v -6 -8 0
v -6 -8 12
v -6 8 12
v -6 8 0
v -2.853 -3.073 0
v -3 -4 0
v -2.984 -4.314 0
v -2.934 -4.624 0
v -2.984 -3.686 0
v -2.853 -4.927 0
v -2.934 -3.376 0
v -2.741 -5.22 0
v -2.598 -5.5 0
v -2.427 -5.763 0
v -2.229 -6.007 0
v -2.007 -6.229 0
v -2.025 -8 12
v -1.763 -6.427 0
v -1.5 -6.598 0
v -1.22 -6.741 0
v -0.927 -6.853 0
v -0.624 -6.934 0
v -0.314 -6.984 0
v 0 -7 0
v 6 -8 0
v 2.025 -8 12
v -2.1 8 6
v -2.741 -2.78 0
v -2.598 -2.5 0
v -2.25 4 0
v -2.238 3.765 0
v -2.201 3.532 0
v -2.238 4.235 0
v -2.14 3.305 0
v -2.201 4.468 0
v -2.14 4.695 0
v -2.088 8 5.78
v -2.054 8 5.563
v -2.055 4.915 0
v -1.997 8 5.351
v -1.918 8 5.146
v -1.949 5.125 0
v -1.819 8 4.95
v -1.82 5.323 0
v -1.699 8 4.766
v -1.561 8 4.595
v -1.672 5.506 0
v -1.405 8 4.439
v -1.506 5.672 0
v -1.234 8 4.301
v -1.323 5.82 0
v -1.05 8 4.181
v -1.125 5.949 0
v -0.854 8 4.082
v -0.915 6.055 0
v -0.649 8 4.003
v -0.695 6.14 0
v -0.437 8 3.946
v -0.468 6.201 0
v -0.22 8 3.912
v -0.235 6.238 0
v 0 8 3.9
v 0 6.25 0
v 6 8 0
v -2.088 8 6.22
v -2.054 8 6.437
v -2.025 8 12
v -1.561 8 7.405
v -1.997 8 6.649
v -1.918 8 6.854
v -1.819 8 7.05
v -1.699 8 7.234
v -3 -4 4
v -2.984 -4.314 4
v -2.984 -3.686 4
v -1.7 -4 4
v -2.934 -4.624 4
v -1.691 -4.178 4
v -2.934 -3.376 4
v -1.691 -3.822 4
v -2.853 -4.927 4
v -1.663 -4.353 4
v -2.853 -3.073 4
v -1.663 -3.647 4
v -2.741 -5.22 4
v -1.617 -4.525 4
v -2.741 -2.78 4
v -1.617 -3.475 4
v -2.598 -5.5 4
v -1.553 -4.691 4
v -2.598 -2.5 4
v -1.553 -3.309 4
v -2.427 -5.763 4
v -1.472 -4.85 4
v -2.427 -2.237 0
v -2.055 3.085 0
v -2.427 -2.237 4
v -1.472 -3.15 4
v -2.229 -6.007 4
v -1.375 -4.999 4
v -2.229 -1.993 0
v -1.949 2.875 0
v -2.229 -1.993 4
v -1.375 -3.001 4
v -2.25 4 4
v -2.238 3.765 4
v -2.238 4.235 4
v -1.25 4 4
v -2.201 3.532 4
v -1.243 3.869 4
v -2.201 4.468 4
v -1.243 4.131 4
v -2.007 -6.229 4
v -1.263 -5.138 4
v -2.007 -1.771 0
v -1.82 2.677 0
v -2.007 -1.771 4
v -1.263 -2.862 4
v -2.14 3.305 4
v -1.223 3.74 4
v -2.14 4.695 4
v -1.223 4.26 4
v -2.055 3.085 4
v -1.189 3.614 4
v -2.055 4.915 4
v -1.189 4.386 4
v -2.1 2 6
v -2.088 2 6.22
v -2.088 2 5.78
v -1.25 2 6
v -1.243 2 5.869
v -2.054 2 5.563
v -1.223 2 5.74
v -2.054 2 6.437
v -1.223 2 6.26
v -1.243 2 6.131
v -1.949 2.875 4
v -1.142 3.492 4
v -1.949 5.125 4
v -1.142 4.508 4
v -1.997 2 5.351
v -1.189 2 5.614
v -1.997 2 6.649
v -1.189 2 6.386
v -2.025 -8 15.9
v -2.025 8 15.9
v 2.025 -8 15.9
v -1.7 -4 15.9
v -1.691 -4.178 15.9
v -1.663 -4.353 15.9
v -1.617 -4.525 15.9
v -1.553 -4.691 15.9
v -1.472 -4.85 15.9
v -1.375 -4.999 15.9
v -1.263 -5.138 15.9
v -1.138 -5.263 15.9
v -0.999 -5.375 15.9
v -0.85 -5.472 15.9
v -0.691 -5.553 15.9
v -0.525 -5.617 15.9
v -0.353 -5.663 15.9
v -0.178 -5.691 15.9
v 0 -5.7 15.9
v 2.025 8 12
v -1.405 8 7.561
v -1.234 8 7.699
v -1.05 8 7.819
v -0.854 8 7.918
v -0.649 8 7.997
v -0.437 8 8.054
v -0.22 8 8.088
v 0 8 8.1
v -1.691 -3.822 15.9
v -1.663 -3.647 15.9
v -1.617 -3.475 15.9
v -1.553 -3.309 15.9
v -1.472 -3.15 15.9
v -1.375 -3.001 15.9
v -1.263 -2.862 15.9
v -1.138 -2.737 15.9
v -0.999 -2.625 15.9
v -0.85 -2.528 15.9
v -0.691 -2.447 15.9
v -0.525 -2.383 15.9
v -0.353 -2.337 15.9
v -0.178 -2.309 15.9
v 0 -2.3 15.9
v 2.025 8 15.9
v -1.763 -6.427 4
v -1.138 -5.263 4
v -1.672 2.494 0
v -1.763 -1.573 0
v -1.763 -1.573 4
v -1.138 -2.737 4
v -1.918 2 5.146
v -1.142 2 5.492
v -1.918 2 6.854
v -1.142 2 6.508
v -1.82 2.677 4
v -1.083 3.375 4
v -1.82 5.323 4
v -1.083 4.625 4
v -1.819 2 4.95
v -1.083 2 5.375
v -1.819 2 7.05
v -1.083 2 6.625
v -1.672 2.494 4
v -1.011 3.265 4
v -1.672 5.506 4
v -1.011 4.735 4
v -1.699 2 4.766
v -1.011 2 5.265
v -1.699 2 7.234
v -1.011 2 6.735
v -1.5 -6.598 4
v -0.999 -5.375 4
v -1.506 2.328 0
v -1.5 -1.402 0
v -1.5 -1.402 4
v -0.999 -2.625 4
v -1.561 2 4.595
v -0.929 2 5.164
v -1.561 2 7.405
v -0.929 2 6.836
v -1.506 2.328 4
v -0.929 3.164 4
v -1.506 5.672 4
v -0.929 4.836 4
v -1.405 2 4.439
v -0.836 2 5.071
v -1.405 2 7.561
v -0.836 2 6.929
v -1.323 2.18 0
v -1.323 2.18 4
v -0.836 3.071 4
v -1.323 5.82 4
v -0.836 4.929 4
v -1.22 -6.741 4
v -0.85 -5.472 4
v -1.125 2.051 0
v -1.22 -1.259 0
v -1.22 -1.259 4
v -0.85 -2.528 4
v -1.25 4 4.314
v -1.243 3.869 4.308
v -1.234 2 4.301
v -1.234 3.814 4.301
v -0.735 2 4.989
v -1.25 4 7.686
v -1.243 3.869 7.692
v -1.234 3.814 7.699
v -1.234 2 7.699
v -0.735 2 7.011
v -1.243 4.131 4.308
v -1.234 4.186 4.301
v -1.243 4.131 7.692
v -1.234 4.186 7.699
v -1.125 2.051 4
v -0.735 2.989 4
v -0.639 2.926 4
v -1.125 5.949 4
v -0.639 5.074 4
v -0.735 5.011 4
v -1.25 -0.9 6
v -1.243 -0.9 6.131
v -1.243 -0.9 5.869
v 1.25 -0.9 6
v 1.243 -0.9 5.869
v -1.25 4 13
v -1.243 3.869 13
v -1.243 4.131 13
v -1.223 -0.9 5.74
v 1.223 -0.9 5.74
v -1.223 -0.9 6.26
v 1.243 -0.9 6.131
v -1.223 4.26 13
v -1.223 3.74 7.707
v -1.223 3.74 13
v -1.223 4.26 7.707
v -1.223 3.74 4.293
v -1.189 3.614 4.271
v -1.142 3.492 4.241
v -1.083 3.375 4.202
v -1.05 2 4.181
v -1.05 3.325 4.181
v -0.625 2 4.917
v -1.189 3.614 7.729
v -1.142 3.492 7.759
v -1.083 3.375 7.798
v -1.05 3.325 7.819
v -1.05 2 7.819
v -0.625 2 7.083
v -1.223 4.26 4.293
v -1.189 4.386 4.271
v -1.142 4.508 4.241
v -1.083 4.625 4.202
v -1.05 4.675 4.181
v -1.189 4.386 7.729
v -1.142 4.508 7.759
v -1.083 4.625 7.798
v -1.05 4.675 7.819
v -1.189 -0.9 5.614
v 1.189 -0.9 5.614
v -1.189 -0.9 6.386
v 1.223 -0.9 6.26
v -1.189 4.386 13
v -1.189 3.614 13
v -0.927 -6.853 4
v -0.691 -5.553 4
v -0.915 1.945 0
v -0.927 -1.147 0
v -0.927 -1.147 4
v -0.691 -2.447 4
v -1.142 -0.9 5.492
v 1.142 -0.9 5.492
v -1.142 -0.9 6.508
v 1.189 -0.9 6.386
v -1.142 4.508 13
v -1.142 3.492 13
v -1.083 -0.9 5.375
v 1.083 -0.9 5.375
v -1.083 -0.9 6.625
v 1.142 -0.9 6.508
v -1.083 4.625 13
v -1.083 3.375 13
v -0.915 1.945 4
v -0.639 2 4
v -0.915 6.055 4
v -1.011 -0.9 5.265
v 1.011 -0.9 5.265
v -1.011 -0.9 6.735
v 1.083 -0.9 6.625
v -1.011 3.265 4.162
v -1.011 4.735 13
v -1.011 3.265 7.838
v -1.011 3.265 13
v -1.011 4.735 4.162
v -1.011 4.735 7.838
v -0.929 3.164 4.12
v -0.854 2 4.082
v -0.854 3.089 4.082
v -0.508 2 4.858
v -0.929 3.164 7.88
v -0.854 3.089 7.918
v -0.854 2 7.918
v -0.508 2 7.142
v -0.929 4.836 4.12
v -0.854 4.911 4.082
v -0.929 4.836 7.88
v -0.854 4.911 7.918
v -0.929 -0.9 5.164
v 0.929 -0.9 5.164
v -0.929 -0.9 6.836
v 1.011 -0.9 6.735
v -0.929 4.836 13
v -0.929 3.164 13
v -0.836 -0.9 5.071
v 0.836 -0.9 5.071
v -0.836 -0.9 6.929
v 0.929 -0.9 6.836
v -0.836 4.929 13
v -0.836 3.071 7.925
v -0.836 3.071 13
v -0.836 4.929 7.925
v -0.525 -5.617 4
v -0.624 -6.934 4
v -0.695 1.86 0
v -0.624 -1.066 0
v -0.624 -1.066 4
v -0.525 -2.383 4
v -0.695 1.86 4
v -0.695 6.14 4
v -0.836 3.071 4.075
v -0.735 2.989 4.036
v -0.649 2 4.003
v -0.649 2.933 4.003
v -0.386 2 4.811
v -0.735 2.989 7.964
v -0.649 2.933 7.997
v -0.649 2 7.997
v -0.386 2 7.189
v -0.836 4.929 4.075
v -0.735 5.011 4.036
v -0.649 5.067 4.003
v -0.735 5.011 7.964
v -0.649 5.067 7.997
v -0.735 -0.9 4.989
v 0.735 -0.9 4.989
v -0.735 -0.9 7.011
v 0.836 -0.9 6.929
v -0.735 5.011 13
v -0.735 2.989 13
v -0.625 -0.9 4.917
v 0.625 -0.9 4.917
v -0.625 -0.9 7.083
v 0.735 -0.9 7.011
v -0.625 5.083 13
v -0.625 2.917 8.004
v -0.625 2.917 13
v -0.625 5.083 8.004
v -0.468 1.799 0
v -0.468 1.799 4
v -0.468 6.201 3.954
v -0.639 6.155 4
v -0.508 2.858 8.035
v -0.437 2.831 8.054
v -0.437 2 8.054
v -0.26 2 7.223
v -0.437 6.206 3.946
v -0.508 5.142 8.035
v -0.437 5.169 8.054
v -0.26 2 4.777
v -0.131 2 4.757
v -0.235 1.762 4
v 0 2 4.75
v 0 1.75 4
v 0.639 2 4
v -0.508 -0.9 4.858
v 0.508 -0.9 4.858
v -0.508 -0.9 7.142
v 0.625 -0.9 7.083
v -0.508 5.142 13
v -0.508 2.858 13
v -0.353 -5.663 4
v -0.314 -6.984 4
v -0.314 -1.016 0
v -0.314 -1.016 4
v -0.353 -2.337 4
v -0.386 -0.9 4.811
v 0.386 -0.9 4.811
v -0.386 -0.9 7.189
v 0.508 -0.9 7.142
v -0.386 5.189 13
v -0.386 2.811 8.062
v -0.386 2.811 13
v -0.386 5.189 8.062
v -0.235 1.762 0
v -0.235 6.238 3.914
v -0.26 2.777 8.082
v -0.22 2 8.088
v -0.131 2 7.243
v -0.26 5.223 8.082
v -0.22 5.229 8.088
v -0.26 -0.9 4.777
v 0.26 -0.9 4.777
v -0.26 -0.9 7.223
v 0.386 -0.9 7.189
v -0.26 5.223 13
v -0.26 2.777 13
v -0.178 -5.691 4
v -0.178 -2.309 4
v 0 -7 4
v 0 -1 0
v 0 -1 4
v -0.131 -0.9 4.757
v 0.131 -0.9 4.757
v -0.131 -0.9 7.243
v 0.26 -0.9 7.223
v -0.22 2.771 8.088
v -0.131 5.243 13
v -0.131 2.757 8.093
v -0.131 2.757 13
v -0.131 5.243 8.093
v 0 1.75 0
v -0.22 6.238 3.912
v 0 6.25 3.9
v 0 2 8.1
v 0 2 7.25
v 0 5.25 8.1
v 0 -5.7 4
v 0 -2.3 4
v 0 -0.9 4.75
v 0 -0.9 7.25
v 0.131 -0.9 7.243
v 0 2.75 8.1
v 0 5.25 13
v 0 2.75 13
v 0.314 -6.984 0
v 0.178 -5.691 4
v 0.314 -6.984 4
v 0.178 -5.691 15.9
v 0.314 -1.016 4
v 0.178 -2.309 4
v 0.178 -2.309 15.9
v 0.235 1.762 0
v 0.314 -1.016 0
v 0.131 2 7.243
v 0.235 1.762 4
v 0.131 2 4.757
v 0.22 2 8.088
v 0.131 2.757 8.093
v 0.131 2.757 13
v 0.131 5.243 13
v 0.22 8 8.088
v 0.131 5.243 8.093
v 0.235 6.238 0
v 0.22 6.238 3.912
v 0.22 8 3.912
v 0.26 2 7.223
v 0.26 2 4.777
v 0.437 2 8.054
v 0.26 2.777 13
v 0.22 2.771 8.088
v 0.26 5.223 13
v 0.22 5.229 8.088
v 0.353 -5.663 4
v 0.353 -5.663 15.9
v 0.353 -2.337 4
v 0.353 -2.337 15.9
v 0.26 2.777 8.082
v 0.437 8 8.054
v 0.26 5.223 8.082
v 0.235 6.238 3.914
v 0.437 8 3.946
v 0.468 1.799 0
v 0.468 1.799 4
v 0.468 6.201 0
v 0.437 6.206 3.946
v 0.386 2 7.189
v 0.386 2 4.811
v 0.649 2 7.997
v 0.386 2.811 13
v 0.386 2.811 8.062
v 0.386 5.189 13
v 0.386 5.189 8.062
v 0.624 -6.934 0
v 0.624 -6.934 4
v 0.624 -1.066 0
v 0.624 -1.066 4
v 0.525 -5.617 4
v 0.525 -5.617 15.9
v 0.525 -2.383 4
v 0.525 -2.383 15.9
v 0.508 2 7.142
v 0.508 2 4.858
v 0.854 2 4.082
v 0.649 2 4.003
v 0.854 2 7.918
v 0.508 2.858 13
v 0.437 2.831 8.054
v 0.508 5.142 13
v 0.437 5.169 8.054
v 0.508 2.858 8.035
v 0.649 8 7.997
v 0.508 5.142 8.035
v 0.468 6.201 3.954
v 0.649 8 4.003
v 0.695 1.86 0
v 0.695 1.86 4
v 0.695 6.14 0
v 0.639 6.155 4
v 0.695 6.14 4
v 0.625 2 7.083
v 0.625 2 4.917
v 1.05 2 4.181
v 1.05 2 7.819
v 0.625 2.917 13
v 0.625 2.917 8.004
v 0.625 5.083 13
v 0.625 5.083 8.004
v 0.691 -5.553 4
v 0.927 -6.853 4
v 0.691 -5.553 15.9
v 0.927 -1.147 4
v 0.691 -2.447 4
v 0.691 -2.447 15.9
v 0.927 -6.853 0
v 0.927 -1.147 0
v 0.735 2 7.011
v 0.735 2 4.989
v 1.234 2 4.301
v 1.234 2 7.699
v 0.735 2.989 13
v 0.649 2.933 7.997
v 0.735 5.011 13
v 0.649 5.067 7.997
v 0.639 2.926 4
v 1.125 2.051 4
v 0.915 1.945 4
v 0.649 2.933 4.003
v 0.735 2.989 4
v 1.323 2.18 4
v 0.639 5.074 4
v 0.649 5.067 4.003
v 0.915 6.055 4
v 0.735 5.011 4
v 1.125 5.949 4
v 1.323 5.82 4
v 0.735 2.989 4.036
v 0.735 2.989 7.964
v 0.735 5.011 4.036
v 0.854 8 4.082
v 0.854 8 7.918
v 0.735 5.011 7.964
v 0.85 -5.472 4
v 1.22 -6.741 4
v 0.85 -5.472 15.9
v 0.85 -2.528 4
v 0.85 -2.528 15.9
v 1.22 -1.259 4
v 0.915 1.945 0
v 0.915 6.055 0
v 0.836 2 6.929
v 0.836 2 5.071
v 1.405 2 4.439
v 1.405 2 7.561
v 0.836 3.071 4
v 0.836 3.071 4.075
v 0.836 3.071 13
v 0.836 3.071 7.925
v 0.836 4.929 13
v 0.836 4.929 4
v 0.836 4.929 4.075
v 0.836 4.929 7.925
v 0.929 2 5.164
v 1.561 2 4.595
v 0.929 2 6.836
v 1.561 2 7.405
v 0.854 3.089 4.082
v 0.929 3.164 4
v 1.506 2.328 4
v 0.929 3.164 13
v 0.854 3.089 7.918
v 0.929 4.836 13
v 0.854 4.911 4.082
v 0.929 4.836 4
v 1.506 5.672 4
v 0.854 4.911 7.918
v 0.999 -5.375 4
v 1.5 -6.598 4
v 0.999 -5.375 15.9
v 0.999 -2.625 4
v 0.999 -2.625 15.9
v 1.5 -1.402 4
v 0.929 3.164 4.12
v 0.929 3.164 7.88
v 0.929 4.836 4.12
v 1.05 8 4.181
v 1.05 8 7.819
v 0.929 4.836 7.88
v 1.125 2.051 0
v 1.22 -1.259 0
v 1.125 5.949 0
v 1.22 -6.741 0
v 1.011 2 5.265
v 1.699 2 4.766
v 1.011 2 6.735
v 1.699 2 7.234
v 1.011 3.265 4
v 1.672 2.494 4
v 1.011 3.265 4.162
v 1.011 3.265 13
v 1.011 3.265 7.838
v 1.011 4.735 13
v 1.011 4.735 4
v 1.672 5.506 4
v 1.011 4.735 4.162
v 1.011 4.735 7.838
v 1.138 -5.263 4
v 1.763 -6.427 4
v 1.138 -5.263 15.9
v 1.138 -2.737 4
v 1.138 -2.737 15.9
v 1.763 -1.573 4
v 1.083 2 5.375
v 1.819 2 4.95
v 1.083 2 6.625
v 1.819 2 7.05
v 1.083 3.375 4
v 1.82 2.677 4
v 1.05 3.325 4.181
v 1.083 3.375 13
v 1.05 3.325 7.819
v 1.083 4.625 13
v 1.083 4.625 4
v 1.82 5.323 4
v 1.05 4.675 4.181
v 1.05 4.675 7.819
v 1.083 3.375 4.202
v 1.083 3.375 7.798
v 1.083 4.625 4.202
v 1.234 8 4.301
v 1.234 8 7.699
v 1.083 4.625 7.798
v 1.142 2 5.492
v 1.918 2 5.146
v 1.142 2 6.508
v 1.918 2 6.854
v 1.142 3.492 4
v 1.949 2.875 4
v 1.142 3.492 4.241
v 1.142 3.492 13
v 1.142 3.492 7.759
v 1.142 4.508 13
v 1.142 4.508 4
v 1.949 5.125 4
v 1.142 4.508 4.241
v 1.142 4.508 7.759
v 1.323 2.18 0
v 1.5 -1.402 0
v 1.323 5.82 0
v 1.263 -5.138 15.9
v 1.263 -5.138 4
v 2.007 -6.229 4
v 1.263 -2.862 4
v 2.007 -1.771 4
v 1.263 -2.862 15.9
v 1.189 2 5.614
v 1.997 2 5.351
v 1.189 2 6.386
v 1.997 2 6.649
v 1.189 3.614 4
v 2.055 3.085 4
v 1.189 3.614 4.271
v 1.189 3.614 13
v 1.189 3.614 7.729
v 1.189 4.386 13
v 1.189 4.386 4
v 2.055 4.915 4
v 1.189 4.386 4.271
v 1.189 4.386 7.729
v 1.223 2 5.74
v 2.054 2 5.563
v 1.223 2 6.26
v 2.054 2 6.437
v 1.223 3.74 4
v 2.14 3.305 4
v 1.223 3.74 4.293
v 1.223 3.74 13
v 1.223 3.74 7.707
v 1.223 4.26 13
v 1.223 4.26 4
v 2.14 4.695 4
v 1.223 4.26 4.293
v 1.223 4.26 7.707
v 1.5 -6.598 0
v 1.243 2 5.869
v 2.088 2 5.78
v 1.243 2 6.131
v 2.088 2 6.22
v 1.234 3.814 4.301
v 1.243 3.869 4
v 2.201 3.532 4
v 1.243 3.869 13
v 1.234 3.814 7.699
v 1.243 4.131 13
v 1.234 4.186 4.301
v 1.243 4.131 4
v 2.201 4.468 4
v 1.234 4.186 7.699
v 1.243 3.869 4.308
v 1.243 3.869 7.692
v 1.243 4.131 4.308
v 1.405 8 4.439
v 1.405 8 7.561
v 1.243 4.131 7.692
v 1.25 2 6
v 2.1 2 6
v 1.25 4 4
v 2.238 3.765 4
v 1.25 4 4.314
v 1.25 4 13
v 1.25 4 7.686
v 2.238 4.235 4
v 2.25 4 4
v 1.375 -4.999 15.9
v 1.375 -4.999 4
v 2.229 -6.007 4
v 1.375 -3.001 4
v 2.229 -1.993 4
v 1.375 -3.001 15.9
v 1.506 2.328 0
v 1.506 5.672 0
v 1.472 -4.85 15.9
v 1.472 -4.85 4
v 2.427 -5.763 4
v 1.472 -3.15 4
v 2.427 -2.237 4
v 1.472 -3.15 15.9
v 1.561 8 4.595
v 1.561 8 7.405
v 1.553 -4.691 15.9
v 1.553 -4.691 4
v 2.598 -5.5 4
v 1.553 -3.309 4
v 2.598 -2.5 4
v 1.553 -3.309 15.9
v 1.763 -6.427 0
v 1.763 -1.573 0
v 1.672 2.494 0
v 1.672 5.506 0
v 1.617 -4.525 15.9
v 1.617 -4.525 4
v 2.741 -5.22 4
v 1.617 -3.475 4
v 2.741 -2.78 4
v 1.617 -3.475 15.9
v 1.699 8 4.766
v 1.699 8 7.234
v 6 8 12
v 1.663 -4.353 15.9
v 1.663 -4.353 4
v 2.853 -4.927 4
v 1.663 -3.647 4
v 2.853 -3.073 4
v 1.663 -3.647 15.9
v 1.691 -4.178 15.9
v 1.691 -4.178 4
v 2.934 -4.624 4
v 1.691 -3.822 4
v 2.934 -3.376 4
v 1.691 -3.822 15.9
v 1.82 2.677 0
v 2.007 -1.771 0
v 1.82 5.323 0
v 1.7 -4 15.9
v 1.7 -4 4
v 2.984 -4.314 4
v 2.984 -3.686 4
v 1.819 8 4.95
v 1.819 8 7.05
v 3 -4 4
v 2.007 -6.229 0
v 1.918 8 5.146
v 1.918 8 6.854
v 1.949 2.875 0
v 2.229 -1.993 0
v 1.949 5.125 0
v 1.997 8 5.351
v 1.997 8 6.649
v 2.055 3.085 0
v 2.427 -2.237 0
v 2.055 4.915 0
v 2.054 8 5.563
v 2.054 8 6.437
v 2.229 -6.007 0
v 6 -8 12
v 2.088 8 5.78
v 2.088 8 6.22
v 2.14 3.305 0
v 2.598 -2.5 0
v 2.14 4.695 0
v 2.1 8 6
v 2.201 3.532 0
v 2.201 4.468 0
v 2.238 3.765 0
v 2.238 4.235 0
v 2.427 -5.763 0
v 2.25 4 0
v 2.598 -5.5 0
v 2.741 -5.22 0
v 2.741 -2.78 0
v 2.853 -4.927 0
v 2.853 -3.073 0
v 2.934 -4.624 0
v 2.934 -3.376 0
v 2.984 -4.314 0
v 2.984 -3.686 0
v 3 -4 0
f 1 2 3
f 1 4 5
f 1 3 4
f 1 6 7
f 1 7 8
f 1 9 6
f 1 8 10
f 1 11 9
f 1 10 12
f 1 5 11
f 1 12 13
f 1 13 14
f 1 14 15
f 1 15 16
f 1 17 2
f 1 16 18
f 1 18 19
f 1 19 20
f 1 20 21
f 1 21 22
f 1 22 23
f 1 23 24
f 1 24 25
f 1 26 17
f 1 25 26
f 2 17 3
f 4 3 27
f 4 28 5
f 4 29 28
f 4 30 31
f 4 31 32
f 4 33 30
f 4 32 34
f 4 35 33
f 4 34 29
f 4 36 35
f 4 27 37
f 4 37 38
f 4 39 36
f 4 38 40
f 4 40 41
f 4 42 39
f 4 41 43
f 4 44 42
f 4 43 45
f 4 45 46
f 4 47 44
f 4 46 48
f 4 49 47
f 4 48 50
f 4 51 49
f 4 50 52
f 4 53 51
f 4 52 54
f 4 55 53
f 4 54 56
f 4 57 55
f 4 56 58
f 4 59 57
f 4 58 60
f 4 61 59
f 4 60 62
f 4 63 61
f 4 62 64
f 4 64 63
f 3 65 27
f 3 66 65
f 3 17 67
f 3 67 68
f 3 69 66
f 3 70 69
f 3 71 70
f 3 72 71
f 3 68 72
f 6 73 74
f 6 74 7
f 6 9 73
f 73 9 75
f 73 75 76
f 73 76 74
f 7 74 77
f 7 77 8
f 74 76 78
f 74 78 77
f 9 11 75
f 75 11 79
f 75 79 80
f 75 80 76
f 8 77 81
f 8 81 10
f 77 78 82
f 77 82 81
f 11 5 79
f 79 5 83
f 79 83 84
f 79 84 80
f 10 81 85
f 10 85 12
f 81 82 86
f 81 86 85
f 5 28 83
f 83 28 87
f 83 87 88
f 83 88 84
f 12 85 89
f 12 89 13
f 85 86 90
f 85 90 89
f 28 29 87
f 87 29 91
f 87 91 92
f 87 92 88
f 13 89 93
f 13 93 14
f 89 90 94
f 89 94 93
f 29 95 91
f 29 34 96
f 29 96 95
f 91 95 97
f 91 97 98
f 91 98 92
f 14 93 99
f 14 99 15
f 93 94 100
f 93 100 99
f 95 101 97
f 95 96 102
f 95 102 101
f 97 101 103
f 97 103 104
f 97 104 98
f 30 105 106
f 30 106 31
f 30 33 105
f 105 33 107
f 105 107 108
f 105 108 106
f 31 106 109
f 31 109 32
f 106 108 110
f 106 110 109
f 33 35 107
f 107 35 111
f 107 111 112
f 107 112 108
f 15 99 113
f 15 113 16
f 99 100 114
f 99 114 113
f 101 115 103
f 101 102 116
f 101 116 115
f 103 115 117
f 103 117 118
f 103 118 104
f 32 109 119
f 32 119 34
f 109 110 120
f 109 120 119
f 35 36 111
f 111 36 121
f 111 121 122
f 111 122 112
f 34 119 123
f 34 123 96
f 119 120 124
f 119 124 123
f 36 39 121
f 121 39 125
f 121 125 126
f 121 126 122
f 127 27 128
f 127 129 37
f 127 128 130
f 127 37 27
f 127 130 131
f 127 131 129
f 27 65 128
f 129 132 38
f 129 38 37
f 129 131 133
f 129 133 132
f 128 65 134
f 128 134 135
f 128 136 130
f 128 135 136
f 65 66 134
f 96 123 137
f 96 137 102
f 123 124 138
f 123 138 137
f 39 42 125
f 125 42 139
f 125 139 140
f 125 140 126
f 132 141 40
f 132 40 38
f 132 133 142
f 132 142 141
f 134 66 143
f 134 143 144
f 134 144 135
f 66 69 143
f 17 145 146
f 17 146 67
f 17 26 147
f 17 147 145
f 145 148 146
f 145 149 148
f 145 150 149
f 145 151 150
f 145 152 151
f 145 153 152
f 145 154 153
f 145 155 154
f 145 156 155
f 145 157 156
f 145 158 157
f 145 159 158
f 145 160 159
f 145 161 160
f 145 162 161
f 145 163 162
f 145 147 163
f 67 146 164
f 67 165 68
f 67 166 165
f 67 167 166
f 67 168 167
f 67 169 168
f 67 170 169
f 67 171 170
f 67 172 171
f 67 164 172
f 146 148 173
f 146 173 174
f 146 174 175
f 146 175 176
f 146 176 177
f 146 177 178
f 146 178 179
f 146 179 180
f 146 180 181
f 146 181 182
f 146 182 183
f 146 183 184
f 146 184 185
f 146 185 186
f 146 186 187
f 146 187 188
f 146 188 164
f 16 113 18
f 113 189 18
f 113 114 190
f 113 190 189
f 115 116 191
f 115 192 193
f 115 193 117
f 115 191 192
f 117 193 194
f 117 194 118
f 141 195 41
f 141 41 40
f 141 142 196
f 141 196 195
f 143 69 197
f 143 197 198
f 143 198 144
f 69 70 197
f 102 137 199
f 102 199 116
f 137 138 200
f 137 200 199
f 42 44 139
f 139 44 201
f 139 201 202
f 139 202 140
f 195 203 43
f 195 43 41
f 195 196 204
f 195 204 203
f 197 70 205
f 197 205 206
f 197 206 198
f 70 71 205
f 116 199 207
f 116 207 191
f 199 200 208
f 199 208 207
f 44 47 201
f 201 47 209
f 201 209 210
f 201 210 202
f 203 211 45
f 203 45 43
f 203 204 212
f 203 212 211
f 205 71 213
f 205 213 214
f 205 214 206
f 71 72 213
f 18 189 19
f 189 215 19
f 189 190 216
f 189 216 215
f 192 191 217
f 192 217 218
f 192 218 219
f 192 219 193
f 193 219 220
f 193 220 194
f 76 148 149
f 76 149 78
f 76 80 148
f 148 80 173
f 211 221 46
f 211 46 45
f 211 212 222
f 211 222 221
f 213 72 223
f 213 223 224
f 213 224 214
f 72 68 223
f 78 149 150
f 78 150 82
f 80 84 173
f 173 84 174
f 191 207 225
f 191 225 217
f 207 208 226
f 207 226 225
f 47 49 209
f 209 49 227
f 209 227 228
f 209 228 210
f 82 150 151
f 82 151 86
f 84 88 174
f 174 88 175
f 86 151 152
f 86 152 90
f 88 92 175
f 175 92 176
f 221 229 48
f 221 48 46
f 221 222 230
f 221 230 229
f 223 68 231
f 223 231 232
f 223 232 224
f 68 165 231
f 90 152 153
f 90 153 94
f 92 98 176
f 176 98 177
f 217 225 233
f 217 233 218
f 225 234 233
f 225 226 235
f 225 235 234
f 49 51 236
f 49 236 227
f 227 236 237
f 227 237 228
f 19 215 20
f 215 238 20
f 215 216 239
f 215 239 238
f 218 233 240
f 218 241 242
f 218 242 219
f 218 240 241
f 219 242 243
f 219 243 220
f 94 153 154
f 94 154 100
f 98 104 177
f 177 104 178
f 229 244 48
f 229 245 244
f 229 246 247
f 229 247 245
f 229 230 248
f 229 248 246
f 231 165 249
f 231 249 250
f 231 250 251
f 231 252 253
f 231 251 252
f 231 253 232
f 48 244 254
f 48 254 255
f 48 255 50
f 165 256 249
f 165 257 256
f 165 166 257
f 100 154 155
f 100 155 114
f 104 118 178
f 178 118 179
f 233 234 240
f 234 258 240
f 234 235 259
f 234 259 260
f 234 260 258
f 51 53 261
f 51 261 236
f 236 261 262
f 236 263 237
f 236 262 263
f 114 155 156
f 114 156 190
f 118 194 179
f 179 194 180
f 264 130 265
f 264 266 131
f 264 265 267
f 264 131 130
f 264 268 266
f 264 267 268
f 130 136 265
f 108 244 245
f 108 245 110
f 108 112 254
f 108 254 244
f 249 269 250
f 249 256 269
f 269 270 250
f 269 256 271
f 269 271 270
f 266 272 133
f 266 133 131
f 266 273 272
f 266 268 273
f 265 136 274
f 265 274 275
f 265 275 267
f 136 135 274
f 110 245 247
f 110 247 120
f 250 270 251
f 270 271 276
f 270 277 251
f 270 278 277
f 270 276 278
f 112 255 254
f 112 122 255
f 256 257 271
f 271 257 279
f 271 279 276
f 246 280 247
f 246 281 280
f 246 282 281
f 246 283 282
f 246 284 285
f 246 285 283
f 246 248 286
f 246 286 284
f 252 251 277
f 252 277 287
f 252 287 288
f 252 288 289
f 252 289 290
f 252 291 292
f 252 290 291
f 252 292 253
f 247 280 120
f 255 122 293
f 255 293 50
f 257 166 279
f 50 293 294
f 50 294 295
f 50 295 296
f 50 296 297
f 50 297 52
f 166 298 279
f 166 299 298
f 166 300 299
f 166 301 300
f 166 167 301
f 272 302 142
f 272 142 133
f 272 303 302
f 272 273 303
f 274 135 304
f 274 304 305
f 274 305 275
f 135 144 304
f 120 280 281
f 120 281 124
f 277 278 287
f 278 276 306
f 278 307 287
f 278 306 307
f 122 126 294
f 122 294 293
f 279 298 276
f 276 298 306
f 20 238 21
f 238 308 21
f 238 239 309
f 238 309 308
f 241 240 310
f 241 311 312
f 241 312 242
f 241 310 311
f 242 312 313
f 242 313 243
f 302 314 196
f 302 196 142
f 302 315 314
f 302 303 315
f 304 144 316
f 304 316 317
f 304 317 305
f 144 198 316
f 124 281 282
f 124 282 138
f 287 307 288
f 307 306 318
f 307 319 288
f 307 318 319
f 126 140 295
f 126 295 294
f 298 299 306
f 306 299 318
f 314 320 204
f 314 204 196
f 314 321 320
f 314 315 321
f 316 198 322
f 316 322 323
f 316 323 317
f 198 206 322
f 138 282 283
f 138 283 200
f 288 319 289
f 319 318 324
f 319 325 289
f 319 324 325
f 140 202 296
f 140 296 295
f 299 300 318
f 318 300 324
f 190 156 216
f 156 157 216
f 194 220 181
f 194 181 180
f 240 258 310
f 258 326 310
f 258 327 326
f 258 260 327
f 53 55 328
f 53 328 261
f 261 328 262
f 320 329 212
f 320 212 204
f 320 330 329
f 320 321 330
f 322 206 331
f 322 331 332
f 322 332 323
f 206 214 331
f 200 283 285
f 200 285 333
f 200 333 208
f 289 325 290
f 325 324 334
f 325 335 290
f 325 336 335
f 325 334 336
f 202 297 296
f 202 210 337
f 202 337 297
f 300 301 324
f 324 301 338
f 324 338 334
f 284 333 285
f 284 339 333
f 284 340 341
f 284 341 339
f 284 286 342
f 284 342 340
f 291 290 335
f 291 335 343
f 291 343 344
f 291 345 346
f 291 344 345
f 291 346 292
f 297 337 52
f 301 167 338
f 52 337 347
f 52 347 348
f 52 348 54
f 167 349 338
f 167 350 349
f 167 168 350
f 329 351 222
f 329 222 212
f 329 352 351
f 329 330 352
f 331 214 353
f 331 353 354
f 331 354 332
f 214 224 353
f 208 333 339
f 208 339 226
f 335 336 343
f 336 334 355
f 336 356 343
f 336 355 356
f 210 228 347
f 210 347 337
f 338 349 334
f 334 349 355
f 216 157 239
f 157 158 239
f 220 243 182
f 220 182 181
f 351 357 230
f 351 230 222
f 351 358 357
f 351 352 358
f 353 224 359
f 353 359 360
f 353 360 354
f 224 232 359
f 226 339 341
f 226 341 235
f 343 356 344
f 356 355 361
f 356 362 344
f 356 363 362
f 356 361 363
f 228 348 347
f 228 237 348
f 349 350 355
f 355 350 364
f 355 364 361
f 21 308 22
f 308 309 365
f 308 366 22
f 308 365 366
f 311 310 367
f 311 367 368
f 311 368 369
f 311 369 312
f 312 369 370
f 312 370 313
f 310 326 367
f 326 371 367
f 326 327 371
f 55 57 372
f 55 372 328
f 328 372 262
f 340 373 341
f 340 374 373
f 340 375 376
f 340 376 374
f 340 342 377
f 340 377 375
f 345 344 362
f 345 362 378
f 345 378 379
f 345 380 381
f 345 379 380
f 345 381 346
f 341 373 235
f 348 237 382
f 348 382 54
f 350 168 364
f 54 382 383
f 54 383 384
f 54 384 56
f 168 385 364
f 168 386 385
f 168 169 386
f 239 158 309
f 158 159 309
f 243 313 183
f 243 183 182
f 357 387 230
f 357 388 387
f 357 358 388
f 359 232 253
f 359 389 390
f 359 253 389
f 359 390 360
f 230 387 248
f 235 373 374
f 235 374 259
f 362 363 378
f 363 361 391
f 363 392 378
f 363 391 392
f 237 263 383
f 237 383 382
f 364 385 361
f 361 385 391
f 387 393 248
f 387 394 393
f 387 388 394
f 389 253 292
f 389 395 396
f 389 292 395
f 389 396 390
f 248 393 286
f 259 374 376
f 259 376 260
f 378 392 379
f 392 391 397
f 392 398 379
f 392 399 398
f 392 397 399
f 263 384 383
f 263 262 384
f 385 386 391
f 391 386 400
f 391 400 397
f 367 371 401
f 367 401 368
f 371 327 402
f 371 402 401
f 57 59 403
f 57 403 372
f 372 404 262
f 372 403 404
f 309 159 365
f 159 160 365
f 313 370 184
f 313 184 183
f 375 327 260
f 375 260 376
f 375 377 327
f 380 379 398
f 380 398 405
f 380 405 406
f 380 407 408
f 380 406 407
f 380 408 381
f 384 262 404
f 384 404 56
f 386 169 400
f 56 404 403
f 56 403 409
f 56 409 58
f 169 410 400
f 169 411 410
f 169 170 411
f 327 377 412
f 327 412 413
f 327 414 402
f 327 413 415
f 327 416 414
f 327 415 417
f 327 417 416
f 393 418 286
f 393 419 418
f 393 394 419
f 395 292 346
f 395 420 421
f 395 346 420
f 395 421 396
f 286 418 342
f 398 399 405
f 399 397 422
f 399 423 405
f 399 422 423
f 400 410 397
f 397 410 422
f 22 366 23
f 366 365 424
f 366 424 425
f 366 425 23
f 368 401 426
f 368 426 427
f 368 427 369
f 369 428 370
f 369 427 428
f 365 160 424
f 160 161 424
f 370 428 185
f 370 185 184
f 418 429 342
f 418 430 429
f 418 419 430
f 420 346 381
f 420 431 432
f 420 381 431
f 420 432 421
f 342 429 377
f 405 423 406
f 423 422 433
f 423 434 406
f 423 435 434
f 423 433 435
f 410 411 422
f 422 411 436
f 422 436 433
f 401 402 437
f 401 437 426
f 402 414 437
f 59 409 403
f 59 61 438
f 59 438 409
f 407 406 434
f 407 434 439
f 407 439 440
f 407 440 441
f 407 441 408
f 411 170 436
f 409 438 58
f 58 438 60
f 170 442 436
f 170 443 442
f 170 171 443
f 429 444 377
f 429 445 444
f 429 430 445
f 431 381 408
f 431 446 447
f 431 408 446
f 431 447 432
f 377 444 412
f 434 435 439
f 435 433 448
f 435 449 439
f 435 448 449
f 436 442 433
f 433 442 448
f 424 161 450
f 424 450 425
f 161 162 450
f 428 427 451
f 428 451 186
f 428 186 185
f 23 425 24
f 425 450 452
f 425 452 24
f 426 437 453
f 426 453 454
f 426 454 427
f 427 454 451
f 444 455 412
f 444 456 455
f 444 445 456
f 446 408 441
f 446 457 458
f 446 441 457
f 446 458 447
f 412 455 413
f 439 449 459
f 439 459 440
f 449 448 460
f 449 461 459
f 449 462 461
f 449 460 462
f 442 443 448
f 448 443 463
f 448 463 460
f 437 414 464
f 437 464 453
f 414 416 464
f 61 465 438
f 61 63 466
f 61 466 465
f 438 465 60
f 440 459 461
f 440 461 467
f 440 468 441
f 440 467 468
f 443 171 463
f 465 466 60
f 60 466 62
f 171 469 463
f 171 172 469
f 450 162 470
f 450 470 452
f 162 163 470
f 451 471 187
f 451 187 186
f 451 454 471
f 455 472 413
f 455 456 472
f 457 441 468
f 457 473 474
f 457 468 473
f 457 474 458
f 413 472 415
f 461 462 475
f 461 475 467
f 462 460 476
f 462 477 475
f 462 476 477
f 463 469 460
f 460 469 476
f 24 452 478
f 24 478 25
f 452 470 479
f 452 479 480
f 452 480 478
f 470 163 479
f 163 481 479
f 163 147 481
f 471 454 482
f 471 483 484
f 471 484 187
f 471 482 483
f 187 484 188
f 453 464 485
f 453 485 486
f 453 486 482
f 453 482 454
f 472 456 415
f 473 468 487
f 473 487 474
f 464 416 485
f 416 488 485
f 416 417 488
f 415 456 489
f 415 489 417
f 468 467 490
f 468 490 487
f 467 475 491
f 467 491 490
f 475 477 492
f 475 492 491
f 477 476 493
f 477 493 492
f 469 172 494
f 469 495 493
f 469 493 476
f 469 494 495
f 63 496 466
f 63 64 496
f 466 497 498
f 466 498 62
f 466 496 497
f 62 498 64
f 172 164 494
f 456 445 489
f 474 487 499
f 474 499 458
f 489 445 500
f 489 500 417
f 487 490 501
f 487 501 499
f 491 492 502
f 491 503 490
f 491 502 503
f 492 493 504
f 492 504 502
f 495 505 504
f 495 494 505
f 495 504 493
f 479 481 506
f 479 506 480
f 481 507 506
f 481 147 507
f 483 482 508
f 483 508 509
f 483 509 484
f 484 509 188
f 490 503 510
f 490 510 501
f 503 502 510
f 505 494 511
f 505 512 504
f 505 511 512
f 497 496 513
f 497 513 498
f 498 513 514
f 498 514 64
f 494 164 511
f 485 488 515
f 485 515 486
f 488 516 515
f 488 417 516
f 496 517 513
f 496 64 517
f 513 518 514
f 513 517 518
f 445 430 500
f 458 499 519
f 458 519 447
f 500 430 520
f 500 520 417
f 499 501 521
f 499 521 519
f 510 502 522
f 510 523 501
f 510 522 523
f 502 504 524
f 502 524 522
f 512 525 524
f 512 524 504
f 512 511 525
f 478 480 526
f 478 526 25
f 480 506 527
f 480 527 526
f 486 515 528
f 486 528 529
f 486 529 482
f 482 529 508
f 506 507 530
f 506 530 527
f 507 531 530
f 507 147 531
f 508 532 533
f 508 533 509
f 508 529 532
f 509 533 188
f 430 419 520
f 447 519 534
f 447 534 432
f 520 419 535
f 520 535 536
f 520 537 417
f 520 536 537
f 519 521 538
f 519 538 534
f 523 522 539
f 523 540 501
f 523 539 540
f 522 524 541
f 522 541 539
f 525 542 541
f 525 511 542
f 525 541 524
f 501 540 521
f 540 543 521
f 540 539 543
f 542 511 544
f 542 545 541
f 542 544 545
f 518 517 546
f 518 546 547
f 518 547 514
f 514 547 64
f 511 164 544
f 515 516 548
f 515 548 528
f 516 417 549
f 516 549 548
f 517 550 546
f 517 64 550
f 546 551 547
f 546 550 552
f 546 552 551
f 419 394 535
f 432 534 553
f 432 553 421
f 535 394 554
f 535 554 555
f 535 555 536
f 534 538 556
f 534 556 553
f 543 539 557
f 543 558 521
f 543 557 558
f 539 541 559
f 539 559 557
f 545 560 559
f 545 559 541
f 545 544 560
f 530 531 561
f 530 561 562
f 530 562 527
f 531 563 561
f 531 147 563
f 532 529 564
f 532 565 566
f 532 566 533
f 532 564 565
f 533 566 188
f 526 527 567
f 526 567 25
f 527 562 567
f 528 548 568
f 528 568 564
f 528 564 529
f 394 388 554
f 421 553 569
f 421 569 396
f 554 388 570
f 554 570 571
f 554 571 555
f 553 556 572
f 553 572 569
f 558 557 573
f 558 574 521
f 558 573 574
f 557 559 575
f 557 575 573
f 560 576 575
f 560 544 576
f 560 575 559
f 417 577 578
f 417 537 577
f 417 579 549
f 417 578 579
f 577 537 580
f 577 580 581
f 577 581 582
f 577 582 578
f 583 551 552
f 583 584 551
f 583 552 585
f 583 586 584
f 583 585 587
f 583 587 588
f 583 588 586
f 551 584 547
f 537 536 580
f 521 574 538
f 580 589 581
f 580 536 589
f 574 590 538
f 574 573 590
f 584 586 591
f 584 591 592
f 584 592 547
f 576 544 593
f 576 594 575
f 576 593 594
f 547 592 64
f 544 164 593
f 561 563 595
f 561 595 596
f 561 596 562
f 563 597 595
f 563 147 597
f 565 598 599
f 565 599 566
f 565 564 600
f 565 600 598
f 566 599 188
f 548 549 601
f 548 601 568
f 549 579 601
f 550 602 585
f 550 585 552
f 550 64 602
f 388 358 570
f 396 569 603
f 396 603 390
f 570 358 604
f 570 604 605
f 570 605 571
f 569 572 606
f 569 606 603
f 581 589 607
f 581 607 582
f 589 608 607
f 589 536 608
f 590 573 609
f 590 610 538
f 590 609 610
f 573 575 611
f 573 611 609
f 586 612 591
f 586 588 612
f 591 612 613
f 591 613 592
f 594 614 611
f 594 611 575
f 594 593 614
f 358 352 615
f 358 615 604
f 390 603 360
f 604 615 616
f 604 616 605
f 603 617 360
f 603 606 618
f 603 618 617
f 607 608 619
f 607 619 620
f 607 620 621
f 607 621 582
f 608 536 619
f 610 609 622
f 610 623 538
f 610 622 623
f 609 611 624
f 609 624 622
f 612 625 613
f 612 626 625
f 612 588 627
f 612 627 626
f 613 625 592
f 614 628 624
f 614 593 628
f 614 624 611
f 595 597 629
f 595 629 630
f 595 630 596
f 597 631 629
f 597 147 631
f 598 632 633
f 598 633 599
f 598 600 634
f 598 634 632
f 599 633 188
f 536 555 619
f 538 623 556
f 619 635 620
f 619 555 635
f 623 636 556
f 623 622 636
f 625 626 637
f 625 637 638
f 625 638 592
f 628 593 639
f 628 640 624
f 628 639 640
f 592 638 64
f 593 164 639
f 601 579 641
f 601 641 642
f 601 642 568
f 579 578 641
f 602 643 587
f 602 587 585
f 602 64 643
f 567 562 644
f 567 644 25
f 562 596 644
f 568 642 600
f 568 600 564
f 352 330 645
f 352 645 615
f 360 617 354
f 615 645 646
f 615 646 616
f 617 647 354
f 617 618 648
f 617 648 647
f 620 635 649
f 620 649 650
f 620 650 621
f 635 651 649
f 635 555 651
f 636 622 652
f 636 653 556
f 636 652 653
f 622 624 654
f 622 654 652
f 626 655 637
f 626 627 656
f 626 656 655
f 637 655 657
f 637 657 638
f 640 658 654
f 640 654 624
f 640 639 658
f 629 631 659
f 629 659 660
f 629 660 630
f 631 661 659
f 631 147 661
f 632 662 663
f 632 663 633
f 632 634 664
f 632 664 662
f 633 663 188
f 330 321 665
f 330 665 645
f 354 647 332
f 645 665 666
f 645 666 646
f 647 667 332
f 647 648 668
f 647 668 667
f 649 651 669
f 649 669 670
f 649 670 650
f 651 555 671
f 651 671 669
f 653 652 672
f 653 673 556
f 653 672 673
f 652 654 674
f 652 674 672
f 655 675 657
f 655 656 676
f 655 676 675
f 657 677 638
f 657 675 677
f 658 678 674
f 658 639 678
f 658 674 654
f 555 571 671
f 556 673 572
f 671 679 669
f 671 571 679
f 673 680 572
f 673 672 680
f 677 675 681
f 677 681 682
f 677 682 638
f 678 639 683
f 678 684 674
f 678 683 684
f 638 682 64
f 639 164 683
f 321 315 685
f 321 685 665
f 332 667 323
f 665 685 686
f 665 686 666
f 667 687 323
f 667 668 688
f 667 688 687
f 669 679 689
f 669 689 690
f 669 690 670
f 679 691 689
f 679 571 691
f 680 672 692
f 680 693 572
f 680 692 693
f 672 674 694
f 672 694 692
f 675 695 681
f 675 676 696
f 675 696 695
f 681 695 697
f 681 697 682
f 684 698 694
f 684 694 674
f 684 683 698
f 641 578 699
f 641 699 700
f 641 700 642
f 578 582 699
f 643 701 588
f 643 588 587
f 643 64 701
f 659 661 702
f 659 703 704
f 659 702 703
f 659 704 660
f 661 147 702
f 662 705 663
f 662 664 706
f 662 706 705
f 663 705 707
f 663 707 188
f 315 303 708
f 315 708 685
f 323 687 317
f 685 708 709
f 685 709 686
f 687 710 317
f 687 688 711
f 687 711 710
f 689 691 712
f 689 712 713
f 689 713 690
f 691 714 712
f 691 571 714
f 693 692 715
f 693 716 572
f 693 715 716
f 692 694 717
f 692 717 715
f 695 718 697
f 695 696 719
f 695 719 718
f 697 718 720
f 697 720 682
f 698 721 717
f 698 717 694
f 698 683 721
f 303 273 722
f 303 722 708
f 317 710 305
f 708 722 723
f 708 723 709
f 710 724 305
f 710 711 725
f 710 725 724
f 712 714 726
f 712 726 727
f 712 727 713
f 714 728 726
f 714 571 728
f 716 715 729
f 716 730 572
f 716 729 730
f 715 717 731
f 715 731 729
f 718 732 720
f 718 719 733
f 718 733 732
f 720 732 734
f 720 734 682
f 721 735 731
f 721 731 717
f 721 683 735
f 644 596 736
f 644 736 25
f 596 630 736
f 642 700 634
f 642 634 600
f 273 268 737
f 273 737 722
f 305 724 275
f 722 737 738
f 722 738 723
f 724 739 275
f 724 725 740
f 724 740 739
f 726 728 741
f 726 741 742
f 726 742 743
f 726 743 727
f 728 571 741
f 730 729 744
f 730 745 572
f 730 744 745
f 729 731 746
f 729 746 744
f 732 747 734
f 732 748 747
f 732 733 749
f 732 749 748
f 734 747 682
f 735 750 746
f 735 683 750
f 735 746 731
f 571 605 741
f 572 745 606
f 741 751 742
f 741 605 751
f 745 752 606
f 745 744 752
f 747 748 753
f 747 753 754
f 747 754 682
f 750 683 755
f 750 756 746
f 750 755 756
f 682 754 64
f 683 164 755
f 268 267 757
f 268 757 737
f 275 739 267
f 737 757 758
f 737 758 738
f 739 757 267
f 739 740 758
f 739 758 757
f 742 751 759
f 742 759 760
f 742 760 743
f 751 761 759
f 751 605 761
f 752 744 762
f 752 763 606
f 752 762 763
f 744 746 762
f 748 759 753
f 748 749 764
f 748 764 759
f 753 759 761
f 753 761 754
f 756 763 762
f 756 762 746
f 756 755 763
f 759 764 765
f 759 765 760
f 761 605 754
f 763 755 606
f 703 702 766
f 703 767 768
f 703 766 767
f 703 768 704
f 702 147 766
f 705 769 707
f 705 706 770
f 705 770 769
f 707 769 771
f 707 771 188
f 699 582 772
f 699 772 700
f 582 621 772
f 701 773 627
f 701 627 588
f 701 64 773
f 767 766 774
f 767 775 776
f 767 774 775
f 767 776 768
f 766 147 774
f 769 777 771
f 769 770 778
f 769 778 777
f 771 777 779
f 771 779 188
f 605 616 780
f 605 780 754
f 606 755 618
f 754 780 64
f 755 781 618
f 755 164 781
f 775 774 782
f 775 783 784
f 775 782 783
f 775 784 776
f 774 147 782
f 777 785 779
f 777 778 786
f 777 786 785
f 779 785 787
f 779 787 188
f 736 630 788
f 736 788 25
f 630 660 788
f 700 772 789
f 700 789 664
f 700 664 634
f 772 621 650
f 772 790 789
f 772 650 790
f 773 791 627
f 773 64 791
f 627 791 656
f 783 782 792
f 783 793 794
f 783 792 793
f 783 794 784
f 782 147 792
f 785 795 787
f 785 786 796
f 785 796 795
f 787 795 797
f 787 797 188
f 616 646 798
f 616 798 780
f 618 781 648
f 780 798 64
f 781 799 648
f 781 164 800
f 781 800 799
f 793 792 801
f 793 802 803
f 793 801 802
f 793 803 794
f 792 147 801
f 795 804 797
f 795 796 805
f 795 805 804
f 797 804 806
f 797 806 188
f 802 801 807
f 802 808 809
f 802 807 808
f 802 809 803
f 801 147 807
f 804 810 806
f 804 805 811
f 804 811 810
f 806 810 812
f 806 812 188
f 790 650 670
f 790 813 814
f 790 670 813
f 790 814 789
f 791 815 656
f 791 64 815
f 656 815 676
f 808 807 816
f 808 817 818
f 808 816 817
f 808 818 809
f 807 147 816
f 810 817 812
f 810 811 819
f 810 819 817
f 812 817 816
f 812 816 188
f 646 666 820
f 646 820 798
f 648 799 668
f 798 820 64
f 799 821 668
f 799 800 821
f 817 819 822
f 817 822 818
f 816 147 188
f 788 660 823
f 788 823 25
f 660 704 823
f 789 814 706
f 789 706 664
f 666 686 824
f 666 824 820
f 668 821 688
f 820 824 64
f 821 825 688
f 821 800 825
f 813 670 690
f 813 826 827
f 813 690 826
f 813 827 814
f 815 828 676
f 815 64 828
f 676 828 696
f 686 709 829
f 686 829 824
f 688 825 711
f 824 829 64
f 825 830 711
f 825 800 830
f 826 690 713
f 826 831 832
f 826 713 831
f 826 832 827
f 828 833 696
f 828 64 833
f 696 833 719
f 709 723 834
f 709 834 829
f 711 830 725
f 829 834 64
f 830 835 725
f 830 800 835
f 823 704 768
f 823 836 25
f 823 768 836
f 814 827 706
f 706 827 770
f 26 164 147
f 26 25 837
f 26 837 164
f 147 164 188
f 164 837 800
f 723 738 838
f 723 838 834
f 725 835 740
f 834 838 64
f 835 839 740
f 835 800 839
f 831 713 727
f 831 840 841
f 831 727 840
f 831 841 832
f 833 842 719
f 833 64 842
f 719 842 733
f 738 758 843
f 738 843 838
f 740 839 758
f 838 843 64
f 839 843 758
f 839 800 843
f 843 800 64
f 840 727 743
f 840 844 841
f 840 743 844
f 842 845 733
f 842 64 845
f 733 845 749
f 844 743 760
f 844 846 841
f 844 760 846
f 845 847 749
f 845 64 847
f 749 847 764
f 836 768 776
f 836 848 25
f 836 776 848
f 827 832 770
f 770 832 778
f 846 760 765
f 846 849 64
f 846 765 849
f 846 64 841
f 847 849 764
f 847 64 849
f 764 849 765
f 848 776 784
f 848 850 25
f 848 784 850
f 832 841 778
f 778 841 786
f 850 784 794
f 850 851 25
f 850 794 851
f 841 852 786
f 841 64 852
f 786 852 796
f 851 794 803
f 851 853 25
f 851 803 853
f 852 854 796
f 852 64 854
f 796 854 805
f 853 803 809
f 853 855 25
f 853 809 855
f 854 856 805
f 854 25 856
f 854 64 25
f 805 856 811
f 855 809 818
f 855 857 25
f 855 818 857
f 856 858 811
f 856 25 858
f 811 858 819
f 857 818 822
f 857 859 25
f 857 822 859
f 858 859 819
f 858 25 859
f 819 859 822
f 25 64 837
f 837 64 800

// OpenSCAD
// =================================================================
// Author: JuanenRac (Electro Hobby 3D) <electrohobby3d@gmail.com>
// Copyright (C) 2026 JuanenRac (Electro Hobby 3D) <electrohobby3d@gmail.com>
//
// Licensed under the CERN Open Hardware Licence v2 - Strongly Reciprocal
// (CERN-OHL-S v2). Full text at https://cern-ohl.web.cern.ch/.
// =================================================================
// [ATC] UNIVERSAL MULTITOOL PAROL6 (JUANENBOT) - V1.0
// LOWER SLIDING ADAPTER - CORRECTED FOR MAIN PART V1.0
// MODIFICATION: Guide neck raised to 3.9mm to flush with square nut.
//               Geometry and gaps optimized for PH4-M5 fitting.
// =================================================================

$fn = 60; 

// --- BLOCK DIMENSIONS ---
block_width       = 12.0;       
block_length      = 16.0;       
block_body_height = 12.0; // Height of the main body hanging downwards

// --- COUPLING WITH THE T-SLOT OF SUCTION CUP PART V1.9 (Upwards) ---
part_slot_width   = 4.2;  // Width of lower slot
guide_neck_depth  = 3.9;  // CORRECTED: 3.9mm to align perfectly flush with the nut
guide_clearance   = 0.15; // Radial/sliding clearance for PETG 3D printing

// --- "L" PNEUMATIC CIRCUIT (Located at Y = 4) ---
m5_fitting_thread_diam  = 4.2; // Diameter for M5 thread tap (or direct threading)
m5_fitting_thread_depth = 6.0; // Thread depth for PH4-M5 fitting
vacuum_channel_diam     = 2.5; // Internal airflow channel
suction_cup_neck_diam   = 4.5; // Lower socket for suction cup thread/stud
suction_cup_neck_depth  = 4.0; // Depth of suction cup socket

// --- M3 FASTENING (Located at Y = -4) ---
m3_clearance_diam = 3.4;
m3_head_diam      = 6.0; // Well for M3 Allen head from below
m3_head_depth     = 4.0;

module lower_sliding_block_180z_corrected() {
    difference() {
        // --- 1. SOLID BODY (Base body + Calibrated upper guide neck) ---
        union() {
            // Lower block housing the fitting and suction cup
            translate([-block_width/2, -block_length/2, 0])
            cube([block_width, block_length, block_body_height]);

            // Guide neck rising into the V1.9 slot
            translate([-(part_slot_width - guide_clearance)/2, -block_length/2, block_body_height])
            cube([part_slot_width - guide_clearance, block_length, guide_neck_depth]);
        }
        
        // --- 2. M3 FIXING SCREW (At Y = -4) ---
        // Passes through entire block and guide neck to reach square nut above
        translate([0, -4, 0]) {
            translate([0, 0, -1])
            cylinder(h=block_body_height + guide_neck_depth + 2, r=m3_clearance_diam/2);

            // Bottom counterbore to hide M3 Allen head
            translate([0, 0, -0.1])
            cylinder(h=m3_head_depth + 0.1, r=m3_head_diam/2);
        }
        
        // --- 3. 90º PNEUMATIC CIRCUIT (At Y = 4) ---
        // Horizontal inlet from rear outer face for PH4-M5 fitting
        translate([0, block_length/2 + 0.1, block_body_height / 2]) rotate([90, 0, 0]) {
            cylinder(h=m5_fitting_thread_depth + 0.1, r=m5_fitting_thread_diam/2); // M5 Thread
            cylinder(h=m5_fitting_thread_depth + 3.0, r=vacuum_channel_diam/2);    // Central intersection
        }
        
        // Vertical outlet towards suction cup (Exits clean at Z = 0)
        translate([0, 4, 0]) {
            translate([0, 0, -1])
            cylinder(h=block_body_height + 2, r=vacuum_channel_diam/2);
            translate([0, 0, -0.1])
            cylinder(h=suction_cup_neck_depth + 0.1, r=suction_cup_neck_diam/2);
        }
    }
}

// Render of corrected part ready for T-slot
lower_sliding_block_180z_corrected();
